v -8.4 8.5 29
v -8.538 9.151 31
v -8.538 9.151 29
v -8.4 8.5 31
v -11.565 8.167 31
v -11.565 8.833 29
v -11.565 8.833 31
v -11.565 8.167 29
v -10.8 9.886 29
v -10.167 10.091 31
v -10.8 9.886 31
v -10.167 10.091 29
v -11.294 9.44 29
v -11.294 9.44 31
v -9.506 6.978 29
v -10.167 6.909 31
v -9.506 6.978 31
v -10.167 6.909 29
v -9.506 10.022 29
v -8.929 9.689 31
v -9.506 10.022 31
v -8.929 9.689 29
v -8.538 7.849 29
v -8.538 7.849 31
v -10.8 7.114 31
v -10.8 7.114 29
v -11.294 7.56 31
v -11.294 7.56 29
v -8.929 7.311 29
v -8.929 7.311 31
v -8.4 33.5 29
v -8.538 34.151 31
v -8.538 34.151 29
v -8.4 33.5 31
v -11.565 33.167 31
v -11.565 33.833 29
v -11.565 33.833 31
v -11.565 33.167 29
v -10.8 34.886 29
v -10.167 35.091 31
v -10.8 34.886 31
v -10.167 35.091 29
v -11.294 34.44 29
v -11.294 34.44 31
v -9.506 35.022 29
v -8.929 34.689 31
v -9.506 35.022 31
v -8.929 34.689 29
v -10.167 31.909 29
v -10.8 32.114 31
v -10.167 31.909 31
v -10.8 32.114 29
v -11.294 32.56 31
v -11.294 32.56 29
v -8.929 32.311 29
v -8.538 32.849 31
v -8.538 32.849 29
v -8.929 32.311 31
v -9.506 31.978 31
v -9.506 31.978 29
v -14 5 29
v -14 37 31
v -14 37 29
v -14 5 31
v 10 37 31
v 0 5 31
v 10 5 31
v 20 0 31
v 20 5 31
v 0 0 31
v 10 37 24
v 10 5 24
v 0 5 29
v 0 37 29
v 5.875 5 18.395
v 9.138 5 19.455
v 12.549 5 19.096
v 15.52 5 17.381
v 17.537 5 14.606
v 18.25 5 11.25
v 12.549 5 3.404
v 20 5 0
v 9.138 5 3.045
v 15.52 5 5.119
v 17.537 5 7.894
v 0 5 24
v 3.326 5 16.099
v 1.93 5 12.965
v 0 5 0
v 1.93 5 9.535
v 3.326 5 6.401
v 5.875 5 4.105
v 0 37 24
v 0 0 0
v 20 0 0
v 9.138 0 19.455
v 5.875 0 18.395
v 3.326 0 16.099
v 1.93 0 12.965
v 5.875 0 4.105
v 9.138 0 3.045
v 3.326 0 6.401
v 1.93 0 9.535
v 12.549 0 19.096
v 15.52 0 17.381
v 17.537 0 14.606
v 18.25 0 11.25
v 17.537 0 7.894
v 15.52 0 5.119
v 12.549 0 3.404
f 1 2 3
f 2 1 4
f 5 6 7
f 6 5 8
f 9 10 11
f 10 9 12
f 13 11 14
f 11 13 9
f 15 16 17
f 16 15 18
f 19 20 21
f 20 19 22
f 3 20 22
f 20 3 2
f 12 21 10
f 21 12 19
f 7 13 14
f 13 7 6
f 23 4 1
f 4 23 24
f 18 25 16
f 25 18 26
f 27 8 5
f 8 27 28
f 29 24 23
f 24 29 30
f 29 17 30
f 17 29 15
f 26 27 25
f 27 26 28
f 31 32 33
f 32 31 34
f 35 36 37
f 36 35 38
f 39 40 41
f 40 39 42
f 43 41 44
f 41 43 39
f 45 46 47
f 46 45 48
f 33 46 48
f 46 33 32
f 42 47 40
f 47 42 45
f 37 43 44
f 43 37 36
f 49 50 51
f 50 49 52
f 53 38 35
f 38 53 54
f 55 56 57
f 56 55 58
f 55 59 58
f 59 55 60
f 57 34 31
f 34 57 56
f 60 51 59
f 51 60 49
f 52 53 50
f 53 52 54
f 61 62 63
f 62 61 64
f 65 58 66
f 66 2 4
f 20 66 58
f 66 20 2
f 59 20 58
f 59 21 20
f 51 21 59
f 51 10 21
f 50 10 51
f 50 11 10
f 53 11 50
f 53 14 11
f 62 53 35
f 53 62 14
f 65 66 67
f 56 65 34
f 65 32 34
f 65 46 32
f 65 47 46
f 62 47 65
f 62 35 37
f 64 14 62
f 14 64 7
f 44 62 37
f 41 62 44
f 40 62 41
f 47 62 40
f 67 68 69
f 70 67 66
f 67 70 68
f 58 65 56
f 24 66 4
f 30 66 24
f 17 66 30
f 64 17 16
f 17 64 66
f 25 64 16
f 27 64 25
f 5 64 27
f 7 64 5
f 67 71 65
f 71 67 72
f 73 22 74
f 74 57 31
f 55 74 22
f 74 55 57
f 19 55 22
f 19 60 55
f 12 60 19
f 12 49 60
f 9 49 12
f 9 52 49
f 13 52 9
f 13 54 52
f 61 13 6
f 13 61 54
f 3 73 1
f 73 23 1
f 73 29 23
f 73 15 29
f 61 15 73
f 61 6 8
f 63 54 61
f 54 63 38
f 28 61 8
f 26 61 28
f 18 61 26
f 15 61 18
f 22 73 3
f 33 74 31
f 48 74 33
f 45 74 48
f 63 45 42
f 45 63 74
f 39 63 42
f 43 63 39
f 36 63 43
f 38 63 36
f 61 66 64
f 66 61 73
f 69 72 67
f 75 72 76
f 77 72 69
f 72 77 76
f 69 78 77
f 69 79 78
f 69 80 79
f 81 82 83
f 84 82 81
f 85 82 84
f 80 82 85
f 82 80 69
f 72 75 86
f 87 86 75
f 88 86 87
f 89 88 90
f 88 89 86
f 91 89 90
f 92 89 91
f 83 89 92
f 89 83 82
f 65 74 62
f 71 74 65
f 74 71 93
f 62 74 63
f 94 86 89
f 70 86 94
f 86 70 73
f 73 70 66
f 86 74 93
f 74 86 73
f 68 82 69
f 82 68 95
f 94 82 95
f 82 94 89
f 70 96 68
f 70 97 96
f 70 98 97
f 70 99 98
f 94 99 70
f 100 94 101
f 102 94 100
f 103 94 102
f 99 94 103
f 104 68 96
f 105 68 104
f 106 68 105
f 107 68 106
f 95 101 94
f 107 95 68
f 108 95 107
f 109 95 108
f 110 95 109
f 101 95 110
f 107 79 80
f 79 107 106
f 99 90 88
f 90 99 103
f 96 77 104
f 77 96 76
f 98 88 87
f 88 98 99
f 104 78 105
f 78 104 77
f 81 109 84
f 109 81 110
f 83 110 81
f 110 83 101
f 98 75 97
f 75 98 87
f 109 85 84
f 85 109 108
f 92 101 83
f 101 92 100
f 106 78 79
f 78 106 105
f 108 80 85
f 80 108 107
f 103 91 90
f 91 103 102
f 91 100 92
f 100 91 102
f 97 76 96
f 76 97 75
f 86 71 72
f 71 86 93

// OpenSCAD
front_width = 20;
front_height = 31;
button_hole = 16.5;
button_off = 3;
wall_size = 5;

hole_dist = 25;
hole_size = 3.2;
mount_wall = 2.0;
mount_height = 32;
mount_width_in = 4;
mount_width_out = 20;

mount_button_off_x = 10;
mount_button_off_y = 5;
support_height = 7;

$fn = 15;

module button() {
    difference() {
        cube([front_width, wall_size, front_height]);
        translate([front_width / 2, wall_size + 1, button_off + (button_hole / 2)])
            rotate([90, 0, 0])
            cylinder(d = button_hole, h = wall_size + 2);
    }
}

module mount() {
    difference() {
        cube([mount_width_in + mount_width_out, mount_height, mount_wall]);
        
        translate([mount_width_in, (mount_height - hole_dist) / 2, -1])
        union() {
            cylinder(d = hole_size, h = mount_wall + 2);
            translate([0, hole_dist, 0])
                cylinder(d = hole_size, h = mount_wall + 2);
        }
    }
}

button();

translate([-mount_width_in - mount_button_off_x, mount_button_off_y, front_height - mount_wall])
    mount();

translate([0, 0, front_height - support_height])
    cube([mount_width_out - mount_button_off_x, mount_button_off_y + mount_height, support_height]);
